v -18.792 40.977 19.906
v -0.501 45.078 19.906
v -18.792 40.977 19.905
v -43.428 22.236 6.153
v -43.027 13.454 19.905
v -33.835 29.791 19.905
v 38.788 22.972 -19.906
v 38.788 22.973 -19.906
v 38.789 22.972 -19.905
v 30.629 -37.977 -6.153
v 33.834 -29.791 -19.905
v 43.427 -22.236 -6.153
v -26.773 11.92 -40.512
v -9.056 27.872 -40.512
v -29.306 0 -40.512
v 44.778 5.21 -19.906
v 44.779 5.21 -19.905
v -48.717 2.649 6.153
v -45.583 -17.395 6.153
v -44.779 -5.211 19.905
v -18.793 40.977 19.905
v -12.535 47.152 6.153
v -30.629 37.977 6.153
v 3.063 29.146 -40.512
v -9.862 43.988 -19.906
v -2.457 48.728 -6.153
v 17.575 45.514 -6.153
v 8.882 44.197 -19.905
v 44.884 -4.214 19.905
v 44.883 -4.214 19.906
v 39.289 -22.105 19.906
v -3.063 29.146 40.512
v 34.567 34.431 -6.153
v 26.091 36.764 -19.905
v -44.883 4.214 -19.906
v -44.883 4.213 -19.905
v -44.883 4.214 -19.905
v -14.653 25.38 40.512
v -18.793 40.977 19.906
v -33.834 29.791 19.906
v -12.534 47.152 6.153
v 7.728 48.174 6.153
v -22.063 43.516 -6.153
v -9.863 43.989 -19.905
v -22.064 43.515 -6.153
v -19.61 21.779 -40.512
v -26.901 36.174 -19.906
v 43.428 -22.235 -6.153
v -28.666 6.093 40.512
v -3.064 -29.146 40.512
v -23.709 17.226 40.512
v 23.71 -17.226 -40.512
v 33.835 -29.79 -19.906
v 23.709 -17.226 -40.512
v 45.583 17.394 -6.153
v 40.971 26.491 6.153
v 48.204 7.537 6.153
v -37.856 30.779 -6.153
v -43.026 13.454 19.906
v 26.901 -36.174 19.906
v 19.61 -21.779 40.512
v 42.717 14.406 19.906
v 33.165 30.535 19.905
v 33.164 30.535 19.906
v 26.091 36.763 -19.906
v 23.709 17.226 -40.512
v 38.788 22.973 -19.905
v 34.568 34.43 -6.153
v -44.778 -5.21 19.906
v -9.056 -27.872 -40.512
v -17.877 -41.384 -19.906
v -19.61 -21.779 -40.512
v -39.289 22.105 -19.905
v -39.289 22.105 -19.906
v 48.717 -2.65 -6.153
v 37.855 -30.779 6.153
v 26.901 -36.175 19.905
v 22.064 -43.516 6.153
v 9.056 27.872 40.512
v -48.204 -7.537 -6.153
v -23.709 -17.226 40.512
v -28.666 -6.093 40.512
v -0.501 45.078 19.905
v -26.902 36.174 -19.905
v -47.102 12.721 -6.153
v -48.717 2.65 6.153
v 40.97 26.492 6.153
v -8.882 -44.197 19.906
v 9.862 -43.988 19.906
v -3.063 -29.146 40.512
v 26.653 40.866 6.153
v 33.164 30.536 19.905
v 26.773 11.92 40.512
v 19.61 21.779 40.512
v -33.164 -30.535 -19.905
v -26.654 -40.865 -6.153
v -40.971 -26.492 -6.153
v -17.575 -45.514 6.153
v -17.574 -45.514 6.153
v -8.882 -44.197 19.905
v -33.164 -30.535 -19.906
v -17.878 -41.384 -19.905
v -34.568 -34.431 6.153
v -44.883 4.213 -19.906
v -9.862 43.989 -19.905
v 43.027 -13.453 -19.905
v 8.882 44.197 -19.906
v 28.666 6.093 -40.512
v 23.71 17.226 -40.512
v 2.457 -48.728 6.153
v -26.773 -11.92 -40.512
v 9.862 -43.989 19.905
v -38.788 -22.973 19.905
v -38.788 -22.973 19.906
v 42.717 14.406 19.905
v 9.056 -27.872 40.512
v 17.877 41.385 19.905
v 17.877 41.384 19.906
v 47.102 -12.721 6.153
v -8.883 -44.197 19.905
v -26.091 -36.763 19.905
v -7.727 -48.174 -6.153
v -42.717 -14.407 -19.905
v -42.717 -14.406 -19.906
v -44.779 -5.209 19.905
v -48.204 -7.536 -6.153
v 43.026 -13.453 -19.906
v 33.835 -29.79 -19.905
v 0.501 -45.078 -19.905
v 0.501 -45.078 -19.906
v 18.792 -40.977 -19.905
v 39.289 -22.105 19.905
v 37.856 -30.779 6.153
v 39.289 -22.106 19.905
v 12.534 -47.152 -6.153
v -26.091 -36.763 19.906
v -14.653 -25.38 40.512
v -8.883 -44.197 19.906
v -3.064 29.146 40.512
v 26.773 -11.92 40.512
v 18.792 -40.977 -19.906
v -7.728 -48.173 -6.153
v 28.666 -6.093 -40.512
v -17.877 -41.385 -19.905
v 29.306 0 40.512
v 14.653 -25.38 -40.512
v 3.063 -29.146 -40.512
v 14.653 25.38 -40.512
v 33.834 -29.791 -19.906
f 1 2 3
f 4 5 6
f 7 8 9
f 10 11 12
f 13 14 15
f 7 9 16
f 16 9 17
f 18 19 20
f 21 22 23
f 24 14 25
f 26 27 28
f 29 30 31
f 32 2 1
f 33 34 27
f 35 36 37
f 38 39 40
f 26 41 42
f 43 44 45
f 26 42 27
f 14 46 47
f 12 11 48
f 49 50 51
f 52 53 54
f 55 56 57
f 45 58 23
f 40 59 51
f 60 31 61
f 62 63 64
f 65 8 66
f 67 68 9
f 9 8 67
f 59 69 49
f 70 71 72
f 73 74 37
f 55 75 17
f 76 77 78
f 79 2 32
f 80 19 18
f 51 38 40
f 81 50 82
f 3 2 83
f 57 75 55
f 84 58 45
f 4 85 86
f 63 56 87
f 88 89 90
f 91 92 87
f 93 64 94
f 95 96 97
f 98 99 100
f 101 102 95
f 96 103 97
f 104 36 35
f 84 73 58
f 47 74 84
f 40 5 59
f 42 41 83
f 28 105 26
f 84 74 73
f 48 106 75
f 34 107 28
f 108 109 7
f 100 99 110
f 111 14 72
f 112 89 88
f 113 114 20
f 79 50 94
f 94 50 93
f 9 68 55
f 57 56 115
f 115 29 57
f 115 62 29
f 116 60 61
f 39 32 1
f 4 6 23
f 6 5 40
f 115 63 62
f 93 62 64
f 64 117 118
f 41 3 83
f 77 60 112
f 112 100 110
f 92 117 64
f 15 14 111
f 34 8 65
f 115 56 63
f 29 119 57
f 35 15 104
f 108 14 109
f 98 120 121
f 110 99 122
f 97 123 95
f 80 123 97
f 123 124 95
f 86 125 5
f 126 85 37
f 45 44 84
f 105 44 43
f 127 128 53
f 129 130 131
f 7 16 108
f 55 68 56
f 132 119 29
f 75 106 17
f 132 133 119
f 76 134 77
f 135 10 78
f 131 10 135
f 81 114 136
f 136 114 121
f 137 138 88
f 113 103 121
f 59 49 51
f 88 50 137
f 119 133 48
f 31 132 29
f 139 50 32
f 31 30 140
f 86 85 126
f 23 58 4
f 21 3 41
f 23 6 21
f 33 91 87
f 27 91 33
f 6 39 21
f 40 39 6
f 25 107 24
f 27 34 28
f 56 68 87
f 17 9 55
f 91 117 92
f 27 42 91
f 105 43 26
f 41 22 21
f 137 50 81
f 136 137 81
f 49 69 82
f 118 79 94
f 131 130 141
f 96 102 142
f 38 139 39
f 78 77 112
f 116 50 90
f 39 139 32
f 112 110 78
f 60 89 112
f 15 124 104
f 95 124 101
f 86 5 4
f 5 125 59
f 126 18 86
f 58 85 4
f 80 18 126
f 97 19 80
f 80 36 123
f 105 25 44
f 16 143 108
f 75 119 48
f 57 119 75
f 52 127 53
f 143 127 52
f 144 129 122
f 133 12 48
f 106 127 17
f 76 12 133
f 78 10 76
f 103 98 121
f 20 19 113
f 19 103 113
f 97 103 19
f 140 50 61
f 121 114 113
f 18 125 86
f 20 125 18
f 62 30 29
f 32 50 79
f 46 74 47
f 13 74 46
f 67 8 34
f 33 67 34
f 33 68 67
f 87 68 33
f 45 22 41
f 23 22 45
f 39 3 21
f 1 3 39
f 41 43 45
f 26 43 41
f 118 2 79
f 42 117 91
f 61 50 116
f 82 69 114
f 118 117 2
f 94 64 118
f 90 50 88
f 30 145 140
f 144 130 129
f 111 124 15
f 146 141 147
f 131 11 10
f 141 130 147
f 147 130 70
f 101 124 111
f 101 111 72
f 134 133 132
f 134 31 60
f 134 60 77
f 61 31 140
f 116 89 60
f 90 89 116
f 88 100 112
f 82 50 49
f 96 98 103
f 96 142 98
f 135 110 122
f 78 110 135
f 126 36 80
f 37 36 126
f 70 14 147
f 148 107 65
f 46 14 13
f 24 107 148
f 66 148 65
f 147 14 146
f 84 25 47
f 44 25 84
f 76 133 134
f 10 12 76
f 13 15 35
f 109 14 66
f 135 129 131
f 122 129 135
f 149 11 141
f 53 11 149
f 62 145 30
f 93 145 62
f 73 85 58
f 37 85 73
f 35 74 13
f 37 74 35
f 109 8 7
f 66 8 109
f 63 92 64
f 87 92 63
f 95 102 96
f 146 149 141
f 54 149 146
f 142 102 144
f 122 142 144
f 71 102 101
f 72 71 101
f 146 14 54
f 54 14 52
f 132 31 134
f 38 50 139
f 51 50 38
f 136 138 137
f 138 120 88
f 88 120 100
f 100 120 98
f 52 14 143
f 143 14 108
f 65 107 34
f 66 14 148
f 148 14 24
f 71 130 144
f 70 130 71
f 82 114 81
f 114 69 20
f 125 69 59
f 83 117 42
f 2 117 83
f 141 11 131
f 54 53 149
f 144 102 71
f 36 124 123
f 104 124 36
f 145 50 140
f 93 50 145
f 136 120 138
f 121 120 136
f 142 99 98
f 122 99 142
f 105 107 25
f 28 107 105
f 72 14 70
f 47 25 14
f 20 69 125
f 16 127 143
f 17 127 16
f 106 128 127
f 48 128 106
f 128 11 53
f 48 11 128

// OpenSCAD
// OpenSCAD model of the Noperthedron
// Based on the paper "A convex polyhedron without Rupert's property"
// arXiv:2508.18475v1 [math.MG] by Jakob Steininger and Sergey Yurkevich.
//
// This model uses the corrected generator points for the Noperthedron. The
// coordinates are from 
//https://github.com/Jakob256/Rupert/blob/632e0fa5084a31f2a8c02a941208469b88b4f460/src/noperthedron.py#L5-L7

//=====================================================================
//          PARAMETERS
//=====================================================================
// Total size (diameter) of the model in millimeters.
// The default radius of the Noperthedron is 1 unit.
// A scale_factor of 50 would make the model's diameter 100 mm.
scale_factor = 50;

//=====================================================================
//          MODEL DEFINITION
//=====================================================================

// Custom function to rotate a vector 'v' around the Z-axis by 'angle' degrees.
// This is a compatible method that works in older versions of OpenSCAD.
function rotate_z(v, angle) = [
    v.x * cos(angle) - v.y * sin(angle),
    v.x * sin(angle) + v.y * cos(angle),
    v.z
];

// Corrected generator points C1, C2, C3 for the Noperthedron.
C1 = [152024884/259375205, 0, 210152163/259375205];
C2 = [6632738028/1e10, 6106948881/1e10, 3980949609/1e10];
C3 = [8193990033/1e10, 5298215096/1e10, 1230614493/1e10];

// Rescale the generator points for the final model size.
scaled_C1 = C1 * scale_factor;
scaled_C2 = C2 * scale_factor;
scaled_C3 = C3 * scale_factor;

eps = 0.001;

// The hull() function computes the convex hull of all child objects.
// We create a tiny, negligible sphere at each of the 90 vertex locations
// to serve as a point for the hull() operation.
hull() {
    // The group C_30 applies 15 rotations around the z-axis,
    // and for each resulting point P, it includes both P and -P.
    for (k = [0 : 14]) {
        // Calculate rotation angle in degrees for each step
        angle = k * (360 / 15);
        
        // --- Apply rotation to generate a set of vertices ---
        
        // Rotated version of C1
        rC1 = rotate_z(scaled_C1, angle);
        // Rotated version of C2
        rC2 = rotate_z(scaled_C2, angle);
        // Rotated version of C3
        rC3 = rotate_z(scaled_C3, angle);

        // --- Create placeholders for the hull() operation ---
        // For each rotated point, we add it and its point-symmetric partner.
        
        // Point from C1 orbit
        translate(rC1) sphere(r = eps);
        translate(-rC1) sphere(r = eps);

        // Point from C2 orbit
        translate(rC2) sphere(r = eps);
        translate(-rC2) sphere(r = eps);

        // Point from C3 orbit
        translate(rC3) sphere(r = eps);
        translate(-rC3) sphere(r = eps);
    }
}
